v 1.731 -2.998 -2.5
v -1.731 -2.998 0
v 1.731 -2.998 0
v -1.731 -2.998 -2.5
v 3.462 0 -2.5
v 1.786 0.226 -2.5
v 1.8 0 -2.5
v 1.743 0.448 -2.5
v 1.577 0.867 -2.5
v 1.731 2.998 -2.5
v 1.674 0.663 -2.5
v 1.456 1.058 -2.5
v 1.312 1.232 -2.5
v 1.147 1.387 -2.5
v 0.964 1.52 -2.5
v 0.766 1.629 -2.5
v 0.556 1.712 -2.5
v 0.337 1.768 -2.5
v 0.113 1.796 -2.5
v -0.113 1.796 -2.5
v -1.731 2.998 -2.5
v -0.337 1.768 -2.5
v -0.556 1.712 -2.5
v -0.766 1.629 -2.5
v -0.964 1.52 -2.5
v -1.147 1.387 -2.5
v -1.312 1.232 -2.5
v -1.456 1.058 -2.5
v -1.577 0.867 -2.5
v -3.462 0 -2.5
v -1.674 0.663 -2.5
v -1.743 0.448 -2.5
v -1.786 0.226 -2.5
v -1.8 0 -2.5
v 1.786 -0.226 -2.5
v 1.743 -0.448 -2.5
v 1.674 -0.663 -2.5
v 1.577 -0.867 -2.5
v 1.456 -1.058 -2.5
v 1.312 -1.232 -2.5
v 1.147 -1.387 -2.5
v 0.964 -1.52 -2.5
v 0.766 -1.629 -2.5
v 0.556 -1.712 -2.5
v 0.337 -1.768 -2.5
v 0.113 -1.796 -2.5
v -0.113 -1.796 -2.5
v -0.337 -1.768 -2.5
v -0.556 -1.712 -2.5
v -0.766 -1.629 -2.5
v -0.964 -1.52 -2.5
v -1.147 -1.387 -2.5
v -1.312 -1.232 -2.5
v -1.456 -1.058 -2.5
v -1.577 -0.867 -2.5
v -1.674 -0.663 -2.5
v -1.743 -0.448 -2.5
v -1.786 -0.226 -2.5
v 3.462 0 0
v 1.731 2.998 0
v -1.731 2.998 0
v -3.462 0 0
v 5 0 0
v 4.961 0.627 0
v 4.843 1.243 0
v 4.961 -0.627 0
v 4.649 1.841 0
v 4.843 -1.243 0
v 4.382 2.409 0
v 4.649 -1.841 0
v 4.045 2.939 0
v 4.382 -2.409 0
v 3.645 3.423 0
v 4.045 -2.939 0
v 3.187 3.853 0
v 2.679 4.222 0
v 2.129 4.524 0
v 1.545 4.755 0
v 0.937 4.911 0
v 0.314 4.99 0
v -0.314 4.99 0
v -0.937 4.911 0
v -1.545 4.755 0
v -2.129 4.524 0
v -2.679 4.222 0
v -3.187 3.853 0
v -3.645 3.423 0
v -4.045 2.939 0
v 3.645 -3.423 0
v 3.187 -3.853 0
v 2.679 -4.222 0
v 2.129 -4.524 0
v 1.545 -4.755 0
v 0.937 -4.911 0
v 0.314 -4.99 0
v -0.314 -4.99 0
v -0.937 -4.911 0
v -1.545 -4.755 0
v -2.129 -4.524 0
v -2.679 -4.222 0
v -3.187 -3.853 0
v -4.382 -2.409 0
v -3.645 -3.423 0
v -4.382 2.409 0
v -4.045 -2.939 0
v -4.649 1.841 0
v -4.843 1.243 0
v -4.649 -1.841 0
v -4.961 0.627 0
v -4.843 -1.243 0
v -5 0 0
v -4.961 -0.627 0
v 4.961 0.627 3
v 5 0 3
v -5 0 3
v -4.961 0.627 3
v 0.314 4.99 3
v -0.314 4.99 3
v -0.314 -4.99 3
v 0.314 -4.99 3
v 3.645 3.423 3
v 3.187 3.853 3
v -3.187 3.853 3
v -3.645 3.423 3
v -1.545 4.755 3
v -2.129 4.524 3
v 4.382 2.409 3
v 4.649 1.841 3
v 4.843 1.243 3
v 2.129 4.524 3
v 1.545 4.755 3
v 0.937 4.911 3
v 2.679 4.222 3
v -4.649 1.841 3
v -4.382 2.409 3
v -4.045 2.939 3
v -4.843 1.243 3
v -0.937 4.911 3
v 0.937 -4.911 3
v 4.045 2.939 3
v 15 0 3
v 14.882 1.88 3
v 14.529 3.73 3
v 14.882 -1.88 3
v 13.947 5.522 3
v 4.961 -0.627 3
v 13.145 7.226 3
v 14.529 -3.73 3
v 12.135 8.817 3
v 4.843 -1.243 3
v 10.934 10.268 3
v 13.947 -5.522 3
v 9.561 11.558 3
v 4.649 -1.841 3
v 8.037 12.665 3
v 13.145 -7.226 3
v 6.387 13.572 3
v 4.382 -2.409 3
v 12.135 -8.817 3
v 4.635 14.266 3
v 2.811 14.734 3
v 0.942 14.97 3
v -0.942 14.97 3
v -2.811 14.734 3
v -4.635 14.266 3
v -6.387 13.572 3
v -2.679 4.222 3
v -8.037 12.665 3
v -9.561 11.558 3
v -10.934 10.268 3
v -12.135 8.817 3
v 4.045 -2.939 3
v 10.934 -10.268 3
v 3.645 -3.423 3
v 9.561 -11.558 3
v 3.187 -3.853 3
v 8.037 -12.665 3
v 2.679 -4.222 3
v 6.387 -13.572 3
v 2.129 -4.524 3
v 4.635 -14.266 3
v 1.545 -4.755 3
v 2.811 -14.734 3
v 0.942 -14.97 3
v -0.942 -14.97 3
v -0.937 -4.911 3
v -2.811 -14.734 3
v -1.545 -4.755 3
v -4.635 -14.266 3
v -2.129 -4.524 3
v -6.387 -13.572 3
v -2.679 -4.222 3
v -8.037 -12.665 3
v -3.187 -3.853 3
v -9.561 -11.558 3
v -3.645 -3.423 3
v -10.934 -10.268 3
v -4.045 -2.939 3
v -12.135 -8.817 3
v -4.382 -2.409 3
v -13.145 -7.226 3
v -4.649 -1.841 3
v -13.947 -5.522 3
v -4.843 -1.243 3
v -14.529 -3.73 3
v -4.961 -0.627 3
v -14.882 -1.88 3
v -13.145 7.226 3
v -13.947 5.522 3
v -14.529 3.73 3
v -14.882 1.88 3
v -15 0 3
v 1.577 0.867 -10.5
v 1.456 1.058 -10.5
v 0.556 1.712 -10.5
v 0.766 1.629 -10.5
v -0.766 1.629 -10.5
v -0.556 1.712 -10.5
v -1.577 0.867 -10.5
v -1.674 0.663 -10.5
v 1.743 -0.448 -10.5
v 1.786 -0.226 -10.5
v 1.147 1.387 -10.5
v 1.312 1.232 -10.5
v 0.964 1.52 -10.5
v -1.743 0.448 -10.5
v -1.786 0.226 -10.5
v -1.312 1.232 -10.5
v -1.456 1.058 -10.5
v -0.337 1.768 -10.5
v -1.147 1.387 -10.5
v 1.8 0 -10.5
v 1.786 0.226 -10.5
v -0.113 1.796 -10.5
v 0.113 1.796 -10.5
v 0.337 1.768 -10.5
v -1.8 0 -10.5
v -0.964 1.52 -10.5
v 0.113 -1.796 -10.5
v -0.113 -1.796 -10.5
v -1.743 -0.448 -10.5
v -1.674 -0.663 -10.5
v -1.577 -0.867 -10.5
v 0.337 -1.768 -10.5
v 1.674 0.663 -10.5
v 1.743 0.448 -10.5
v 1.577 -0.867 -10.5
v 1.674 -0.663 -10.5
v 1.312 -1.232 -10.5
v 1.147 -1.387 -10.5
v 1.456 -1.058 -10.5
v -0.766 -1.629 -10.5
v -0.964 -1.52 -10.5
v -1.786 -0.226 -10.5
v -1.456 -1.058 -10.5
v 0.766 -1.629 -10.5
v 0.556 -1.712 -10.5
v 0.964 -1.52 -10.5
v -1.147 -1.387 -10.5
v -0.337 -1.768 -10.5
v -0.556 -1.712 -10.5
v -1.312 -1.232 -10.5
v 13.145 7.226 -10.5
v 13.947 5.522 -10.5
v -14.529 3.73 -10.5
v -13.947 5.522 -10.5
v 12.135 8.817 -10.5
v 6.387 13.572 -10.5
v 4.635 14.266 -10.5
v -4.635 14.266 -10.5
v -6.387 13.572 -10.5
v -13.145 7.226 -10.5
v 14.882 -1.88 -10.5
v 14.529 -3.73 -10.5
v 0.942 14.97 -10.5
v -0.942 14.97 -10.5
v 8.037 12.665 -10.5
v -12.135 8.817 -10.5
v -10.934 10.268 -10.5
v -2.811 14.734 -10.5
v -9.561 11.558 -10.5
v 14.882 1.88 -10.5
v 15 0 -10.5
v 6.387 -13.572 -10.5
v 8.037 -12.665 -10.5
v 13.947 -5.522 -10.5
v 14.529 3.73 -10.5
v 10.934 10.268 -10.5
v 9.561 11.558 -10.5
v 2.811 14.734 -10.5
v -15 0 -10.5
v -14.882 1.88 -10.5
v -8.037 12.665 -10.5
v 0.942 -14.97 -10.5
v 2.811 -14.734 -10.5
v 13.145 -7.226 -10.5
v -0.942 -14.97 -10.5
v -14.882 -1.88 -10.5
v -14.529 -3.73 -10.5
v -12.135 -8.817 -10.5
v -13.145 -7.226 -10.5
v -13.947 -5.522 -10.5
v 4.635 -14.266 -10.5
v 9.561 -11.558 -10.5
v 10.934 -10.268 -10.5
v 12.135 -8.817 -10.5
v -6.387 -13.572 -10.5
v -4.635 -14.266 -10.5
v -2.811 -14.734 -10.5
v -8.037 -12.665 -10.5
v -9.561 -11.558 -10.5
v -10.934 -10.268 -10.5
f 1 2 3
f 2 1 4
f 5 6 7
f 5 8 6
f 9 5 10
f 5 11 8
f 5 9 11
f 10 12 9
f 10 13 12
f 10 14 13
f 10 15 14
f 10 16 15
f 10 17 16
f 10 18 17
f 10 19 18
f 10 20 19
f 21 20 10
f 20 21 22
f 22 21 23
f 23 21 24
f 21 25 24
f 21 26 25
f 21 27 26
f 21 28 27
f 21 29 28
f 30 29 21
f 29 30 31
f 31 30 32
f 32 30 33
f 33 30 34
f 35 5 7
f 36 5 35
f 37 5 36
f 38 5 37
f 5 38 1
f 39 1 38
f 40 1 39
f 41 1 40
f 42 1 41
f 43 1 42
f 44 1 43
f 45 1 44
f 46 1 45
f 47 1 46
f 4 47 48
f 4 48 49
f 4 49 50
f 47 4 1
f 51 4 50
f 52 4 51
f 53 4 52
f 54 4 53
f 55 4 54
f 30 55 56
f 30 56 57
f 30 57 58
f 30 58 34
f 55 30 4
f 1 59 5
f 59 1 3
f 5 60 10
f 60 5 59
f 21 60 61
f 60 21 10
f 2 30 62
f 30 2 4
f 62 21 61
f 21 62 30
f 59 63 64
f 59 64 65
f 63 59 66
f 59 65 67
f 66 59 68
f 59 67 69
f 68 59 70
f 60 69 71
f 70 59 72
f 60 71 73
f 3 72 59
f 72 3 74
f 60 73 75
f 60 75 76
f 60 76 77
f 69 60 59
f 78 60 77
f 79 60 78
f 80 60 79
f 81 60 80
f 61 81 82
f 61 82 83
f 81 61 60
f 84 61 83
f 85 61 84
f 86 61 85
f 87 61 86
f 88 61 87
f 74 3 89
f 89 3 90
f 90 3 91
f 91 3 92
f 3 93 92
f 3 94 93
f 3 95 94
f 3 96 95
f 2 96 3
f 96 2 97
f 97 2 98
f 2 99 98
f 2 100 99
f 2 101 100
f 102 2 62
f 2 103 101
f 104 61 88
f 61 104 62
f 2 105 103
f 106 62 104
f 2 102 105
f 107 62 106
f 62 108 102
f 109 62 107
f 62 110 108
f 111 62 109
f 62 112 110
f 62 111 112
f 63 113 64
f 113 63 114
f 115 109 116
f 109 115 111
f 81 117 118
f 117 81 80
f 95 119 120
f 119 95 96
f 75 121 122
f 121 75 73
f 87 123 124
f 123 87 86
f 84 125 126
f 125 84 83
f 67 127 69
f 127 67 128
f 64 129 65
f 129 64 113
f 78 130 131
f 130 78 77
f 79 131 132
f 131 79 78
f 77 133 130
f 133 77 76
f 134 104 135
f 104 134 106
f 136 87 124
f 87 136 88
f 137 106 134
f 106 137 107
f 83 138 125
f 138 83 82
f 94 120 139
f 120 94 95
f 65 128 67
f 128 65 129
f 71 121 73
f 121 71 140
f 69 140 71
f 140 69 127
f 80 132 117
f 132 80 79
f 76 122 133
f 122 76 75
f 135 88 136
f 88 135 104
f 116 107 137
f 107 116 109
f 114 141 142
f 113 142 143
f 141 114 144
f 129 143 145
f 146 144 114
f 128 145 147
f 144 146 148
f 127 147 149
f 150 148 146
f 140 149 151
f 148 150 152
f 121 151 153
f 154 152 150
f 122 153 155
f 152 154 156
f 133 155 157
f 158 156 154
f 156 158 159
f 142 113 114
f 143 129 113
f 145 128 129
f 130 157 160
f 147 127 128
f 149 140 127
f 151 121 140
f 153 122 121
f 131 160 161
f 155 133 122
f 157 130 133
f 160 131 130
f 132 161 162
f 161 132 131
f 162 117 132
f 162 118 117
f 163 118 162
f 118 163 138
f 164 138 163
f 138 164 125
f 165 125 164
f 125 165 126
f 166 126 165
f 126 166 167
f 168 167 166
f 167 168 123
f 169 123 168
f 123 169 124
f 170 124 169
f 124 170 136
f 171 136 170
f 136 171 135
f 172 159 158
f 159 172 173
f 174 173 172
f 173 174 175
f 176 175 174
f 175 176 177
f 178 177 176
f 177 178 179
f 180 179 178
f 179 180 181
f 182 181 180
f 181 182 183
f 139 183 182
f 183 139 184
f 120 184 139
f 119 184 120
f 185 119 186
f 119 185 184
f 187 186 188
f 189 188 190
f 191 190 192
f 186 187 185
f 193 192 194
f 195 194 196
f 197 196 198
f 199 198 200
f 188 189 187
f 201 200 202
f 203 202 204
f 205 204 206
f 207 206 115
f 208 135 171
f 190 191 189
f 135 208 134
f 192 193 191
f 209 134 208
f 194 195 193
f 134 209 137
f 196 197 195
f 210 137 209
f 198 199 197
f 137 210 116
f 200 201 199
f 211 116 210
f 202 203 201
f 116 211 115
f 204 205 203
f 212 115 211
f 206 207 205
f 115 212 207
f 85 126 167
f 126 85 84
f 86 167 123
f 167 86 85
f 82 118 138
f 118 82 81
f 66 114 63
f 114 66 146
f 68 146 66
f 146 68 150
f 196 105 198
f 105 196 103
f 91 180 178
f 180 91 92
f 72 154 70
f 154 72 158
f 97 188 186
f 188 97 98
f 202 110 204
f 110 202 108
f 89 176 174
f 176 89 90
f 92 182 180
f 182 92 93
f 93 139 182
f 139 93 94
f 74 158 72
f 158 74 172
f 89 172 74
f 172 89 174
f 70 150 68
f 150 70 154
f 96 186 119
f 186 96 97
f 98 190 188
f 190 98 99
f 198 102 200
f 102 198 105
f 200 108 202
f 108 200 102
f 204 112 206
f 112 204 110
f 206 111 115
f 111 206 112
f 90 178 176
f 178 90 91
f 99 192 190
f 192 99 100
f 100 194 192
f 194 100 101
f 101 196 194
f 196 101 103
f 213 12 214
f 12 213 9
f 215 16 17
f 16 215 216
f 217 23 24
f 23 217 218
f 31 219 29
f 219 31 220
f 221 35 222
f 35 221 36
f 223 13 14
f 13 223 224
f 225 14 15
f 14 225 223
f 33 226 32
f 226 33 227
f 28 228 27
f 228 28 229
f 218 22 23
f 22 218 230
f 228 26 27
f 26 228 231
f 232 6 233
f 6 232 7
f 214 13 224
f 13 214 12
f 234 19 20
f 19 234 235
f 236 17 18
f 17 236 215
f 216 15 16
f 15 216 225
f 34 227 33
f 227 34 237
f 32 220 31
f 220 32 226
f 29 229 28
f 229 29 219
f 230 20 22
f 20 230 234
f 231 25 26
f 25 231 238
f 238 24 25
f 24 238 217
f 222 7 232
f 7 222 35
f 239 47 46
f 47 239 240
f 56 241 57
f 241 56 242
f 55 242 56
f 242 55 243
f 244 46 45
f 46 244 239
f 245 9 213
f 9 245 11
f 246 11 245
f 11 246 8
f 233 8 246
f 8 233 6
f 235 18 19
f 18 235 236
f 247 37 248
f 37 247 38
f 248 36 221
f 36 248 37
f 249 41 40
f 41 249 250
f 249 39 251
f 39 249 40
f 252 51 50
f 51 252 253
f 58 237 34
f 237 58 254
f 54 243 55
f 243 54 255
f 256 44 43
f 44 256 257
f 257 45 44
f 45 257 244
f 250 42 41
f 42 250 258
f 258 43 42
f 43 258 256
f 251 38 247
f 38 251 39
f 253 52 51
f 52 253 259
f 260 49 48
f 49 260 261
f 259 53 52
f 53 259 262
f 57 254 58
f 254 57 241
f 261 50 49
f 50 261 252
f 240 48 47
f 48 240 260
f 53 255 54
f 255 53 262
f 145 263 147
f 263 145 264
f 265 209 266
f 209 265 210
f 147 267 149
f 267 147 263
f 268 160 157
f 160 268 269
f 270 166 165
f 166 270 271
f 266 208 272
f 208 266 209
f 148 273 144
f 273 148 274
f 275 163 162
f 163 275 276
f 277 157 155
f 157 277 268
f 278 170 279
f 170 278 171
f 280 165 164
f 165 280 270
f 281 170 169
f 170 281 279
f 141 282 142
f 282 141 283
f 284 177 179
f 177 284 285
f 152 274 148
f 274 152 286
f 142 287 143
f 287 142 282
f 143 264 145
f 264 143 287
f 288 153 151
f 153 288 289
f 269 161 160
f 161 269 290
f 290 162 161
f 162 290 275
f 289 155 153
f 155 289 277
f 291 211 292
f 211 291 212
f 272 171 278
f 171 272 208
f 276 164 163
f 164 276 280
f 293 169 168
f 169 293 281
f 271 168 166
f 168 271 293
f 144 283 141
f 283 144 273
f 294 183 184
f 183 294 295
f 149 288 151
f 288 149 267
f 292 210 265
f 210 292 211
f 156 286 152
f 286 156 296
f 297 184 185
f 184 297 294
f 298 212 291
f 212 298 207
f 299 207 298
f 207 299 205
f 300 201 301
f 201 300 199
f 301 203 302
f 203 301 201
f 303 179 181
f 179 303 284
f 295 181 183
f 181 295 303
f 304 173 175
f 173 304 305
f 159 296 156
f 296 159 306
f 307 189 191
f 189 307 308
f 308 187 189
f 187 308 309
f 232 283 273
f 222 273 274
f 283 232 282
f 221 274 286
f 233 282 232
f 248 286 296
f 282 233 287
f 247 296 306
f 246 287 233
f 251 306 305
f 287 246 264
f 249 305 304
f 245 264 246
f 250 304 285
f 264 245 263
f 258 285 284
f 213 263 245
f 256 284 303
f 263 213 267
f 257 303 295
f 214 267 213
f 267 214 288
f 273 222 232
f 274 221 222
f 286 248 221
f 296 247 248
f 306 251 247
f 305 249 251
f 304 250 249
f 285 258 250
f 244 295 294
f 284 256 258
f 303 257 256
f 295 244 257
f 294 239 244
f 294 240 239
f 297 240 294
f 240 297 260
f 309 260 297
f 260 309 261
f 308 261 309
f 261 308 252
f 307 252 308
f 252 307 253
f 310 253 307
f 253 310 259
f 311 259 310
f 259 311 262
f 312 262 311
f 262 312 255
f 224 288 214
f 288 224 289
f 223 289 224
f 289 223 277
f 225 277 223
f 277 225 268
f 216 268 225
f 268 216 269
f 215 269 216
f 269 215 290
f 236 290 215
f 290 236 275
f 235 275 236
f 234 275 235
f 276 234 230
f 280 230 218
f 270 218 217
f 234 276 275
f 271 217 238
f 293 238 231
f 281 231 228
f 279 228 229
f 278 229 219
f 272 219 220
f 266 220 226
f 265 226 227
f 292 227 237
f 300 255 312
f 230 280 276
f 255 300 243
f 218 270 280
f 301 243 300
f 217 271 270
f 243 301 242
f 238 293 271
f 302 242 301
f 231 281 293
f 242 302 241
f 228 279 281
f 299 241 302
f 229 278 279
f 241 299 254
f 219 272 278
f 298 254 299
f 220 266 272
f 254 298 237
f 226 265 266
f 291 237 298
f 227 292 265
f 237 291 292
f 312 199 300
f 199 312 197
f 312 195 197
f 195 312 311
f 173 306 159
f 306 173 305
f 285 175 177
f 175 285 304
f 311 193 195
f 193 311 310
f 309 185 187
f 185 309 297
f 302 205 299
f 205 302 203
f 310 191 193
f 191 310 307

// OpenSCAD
$fn = 50;

difference() {
	union() {
		translate(v = [0, 0, -10.5]) {
			cylinder(h = 13.5, r = 15.0);
		}
	}
	union() {
		translate(v = [0, 0, 0]) {
			rotate(a = [0, 0, 0]) {
				difference() {
					union() {
						translate(v = [0, 0, -2.5]) {
							linear_extrude(height = 2.5) {
								polygon(points = [[3.4619999999999997, 0.0], [1.7310000000000003, 2.9981799479017264], [-1.7309999999999992, 2.9981799479017264], [-3.4619999999999997, 4.2397272186481365e-16], [-1.7310000000000014, -2.998179947901726], [1.7309999999999977, -2.9981799479017277]]);
							}
						}
					}
					union();
				}
			}
		}
		#cylinder(h = 3, r = 5.0);
		#translate(v = [0, 0, -100.0]) {
			cylinder(h = 200, r = 1.8);
		}
	}
}
